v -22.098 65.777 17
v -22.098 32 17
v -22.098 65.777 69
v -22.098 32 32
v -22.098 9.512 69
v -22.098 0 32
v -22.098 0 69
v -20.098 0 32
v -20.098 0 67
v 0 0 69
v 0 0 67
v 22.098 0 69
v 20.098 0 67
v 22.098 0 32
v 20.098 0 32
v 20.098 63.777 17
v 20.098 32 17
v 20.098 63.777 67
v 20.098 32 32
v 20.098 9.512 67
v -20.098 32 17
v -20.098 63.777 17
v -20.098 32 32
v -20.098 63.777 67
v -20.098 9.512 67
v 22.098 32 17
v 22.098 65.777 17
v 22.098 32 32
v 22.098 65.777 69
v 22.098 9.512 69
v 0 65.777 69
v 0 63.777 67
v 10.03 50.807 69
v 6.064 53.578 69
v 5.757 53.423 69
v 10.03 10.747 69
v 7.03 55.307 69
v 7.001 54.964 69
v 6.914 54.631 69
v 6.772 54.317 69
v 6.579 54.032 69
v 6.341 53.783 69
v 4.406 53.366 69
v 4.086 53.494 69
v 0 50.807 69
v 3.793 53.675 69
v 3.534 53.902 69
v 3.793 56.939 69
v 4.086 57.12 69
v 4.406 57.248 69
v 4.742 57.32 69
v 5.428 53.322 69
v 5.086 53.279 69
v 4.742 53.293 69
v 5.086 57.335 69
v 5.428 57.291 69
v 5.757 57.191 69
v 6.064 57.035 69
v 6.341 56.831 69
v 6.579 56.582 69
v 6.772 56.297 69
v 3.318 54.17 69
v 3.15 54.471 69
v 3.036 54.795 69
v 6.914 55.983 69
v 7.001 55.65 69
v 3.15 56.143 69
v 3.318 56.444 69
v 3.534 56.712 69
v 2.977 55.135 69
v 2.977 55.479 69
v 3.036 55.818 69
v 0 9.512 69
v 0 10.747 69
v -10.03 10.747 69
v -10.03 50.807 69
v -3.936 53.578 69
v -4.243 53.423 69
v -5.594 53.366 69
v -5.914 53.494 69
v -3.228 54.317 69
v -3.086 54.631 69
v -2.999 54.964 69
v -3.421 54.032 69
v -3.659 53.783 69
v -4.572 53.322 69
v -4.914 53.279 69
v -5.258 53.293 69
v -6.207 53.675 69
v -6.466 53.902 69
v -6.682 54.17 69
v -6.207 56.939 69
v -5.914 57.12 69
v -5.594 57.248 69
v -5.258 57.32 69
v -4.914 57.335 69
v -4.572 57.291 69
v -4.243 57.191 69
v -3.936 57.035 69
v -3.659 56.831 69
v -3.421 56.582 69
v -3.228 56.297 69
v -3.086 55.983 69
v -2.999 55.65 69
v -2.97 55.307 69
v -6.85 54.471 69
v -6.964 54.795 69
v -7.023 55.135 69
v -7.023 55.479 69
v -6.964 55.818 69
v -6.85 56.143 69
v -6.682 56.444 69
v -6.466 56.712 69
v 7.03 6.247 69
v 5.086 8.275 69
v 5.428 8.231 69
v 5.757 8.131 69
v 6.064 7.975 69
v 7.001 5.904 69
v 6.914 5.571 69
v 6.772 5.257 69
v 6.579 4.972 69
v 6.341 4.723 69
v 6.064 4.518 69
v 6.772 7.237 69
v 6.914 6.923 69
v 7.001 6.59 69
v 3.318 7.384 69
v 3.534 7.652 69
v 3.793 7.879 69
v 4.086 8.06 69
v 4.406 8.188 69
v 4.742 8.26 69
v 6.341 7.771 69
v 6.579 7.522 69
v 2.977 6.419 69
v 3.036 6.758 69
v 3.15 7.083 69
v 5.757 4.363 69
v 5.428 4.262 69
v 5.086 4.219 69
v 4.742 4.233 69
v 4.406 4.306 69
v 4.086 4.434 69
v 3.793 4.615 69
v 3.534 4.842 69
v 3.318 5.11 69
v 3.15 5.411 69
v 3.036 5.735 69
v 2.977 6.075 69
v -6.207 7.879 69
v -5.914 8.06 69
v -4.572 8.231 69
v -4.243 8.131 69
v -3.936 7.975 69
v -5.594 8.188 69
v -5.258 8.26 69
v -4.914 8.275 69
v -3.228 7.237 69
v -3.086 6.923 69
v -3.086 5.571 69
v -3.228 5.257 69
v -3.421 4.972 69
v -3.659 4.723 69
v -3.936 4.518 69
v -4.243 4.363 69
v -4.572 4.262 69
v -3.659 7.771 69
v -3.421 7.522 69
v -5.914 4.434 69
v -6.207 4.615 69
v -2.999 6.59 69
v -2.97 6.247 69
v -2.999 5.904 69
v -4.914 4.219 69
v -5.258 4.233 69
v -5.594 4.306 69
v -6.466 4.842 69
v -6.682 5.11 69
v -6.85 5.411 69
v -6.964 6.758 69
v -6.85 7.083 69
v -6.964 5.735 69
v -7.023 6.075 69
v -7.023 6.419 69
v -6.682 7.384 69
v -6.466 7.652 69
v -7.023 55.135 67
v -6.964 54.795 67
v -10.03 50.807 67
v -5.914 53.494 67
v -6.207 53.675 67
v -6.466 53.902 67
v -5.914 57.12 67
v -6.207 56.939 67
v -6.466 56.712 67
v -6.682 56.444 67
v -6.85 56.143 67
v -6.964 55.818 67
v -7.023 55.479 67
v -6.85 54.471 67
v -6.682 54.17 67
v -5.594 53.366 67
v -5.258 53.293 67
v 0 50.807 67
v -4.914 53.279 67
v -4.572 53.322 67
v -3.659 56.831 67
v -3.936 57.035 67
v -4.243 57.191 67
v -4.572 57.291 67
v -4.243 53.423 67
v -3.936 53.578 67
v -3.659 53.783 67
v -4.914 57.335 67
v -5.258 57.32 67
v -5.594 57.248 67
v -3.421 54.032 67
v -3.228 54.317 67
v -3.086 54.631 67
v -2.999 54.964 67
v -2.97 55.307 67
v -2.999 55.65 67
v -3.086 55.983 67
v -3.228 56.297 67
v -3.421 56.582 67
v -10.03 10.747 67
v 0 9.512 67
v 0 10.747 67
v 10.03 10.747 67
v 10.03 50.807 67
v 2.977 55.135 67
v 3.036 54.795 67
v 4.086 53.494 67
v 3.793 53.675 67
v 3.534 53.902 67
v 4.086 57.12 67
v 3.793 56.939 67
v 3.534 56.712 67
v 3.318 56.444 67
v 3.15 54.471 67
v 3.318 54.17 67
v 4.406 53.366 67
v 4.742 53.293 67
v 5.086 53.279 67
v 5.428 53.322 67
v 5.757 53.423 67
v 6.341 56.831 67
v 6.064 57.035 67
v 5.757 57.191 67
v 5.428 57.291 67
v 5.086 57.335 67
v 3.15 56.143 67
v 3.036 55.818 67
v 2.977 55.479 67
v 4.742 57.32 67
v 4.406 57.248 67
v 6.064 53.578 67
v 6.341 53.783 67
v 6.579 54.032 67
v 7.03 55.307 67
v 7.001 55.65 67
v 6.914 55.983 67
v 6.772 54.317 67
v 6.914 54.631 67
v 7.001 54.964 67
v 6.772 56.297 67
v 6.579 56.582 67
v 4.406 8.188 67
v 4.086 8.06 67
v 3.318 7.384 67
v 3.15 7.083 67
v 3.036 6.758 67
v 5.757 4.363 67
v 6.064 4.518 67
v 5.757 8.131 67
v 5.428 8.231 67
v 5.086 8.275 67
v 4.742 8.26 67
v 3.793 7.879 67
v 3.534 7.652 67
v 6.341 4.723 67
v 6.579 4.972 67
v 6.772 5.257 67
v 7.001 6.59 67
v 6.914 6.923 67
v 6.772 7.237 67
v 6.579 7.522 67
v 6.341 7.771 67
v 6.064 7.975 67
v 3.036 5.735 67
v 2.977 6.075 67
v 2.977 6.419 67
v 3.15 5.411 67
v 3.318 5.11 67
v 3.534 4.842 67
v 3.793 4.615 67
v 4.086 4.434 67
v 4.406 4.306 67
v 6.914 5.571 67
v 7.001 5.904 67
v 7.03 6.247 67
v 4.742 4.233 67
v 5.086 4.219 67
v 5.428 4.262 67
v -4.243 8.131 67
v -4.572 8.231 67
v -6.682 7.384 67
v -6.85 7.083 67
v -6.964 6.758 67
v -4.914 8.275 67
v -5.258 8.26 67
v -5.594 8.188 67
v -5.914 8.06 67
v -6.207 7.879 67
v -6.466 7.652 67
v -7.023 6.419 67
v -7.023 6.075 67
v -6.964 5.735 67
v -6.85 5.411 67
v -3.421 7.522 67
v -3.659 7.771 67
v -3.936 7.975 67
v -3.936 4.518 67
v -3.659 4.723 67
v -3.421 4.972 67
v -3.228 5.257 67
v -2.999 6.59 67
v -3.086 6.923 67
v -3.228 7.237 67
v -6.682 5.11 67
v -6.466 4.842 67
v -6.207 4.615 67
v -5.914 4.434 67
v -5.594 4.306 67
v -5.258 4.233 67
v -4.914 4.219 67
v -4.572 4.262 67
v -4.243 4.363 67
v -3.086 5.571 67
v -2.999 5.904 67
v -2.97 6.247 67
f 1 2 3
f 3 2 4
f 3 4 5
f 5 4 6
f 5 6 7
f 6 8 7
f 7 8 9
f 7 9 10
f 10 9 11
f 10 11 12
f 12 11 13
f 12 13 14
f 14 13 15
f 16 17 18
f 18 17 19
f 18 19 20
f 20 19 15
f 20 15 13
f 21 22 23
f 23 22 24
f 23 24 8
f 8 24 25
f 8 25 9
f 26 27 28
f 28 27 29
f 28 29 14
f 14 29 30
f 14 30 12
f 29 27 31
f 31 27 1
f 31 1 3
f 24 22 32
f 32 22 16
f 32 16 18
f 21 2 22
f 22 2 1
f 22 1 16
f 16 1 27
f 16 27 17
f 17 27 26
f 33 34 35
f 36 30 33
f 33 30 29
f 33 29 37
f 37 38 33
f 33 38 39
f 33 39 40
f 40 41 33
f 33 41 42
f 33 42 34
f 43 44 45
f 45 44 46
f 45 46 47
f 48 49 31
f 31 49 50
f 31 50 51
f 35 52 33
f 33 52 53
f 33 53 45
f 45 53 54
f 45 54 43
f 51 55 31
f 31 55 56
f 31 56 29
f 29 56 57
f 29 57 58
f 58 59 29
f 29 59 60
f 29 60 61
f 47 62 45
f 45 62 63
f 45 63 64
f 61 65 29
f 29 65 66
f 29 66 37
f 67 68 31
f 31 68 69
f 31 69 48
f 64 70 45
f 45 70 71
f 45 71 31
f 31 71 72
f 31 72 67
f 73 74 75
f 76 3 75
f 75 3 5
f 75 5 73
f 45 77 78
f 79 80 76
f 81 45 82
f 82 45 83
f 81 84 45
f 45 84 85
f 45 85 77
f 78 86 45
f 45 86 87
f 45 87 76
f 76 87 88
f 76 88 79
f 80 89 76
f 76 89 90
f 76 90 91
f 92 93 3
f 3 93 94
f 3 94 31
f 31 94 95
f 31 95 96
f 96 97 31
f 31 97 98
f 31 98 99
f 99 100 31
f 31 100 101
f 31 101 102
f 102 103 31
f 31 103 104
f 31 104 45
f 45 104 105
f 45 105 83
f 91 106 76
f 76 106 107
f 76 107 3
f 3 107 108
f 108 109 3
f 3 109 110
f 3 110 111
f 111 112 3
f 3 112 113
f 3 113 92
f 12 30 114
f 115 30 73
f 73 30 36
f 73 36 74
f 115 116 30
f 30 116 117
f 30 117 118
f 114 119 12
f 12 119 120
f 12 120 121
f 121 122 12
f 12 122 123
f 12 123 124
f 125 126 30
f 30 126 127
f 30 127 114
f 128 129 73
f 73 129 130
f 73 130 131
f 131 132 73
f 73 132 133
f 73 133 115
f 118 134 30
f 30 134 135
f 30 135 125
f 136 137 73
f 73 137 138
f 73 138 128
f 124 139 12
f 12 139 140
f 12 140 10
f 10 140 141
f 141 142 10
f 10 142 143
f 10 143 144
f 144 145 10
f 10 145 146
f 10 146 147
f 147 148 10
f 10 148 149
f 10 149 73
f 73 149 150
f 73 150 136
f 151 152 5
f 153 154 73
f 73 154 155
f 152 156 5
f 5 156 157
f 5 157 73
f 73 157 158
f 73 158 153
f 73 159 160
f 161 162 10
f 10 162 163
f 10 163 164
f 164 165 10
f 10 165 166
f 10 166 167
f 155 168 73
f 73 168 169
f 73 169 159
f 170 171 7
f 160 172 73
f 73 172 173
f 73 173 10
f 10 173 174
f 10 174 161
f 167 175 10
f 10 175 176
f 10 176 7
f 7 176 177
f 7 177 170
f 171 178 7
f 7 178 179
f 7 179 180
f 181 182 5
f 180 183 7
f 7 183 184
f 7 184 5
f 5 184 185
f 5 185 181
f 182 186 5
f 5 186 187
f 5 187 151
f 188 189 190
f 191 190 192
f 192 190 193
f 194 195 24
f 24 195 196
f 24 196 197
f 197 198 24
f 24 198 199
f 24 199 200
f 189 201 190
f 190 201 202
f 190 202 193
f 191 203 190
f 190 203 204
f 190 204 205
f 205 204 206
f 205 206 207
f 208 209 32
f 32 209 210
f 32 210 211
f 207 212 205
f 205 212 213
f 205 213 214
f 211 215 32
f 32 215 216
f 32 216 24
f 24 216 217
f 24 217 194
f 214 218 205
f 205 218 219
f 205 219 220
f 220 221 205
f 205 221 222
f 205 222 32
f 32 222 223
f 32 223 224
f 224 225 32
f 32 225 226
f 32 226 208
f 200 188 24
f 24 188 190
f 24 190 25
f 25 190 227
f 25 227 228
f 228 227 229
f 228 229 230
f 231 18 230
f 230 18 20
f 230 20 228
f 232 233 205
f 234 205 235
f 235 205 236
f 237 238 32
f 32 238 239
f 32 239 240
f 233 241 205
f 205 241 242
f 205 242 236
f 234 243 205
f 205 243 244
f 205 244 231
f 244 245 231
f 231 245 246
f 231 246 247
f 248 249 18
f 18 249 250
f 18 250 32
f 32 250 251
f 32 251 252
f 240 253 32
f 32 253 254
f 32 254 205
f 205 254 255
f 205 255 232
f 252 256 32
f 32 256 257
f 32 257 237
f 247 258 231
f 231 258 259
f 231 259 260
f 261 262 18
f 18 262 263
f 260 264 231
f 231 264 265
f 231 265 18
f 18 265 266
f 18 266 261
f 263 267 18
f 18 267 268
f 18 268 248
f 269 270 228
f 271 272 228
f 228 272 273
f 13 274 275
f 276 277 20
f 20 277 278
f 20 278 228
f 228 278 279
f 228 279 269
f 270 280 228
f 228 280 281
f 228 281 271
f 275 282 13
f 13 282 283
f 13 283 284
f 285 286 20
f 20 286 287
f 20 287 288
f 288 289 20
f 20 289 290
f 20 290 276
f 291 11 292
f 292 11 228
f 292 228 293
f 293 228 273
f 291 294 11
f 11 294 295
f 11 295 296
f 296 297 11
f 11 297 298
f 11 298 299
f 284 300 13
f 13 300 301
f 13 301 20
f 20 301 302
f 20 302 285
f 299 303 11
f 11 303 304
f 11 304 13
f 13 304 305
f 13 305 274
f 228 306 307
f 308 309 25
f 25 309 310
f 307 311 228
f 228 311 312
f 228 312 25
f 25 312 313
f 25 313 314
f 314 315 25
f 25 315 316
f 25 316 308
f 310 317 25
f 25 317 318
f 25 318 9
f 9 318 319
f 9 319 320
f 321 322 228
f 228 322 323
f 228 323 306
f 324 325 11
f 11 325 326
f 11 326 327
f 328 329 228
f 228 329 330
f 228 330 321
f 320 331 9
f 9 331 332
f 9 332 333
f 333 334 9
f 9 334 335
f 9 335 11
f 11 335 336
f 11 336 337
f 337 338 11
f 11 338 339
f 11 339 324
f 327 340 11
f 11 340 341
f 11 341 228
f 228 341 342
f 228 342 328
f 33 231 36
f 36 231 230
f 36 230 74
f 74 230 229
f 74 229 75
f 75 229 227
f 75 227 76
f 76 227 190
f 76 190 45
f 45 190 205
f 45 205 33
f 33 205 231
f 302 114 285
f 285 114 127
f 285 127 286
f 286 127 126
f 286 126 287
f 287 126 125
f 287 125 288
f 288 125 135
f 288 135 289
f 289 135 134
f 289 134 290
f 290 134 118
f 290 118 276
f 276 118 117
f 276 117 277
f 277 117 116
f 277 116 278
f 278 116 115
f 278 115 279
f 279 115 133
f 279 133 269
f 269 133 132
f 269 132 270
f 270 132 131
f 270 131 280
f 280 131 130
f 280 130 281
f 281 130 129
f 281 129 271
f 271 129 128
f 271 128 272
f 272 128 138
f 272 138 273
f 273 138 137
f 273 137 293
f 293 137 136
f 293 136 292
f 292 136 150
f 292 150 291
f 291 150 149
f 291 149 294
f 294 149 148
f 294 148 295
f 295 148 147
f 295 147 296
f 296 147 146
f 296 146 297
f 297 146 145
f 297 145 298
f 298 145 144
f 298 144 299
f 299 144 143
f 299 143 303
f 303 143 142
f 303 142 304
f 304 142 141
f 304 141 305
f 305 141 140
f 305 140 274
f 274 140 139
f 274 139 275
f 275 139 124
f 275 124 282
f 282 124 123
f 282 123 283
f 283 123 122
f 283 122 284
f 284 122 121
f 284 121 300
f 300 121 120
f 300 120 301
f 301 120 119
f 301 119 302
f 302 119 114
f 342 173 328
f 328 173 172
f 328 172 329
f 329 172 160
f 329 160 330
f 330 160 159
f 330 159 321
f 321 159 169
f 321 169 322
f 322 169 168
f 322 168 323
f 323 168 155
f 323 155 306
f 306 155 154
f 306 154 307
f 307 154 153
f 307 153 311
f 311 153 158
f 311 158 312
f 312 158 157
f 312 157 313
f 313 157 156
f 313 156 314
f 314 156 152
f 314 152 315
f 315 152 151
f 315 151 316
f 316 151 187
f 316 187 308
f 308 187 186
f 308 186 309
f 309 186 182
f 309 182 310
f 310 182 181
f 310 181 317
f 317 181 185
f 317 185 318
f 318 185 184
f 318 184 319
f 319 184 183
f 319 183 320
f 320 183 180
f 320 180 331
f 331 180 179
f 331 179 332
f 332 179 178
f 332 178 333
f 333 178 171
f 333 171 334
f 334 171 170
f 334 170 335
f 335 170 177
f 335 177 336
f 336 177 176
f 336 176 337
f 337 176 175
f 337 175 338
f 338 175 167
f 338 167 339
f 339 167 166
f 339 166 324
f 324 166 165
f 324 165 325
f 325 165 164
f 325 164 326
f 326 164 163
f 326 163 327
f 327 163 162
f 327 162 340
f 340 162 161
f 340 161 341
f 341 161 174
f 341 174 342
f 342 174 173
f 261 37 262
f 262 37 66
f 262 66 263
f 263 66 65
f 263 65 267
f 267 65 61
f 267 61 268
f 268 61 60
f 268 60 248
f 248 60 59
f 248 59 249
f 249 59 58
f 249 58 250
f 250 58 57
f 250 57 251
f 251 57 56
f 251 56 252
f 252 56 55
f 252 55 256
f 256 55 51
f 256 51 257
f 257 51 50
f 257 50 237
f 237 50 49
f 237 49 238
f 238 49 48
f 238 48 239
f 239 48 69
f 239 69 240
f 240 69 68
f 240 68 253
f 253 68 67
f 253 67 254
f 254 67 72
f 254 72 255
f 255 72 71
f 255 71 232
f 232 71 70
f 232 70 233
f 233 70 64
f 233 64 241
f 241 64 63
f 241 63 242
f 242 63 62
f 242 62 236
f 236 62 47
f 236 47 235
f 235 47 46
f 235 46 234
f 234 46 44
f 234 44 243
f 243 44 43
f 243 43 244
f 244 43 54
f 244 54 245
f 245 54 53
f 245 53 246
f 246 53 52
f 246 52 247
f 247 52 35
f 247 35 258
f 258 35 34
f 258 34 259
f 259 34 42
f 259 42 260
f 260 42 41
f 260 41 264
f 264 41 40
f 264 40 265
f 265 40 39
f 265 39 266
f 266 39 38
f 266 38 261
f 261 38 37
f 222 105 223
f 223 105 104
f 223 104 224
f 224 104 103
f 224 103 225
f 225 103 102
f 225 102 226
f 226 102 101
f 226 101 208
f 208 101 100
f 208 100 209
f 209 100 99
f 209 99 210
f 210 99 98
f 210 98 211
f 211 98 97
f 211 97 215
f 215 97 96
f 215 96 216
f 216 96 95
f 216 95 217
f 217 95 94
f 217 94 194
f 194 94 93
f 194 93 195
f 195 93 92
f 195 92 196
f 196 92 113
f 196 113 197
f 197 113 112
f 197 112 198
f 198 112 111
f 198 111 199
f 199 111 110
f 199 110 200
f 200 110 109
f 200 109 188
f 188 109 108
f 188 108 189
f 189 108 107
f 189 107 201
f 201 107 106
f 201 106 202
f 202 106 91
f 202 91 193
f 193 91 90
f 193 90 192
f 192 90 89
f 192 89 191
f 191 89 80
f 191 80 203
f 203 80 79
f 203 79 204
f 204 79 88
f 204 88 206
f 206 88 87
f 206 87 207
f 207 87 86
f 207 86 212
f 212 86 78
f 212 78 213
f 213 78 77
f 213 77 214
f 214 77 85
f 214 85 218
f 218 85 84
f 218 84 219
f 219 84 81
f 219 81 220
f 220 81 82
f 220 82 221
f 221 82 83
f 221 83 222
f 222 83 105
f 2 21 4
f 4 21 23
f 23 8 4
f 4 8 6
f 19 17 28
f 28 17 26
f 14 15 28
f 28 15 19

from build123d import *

# Parameters (mm, degrees)
SKETCH1_W                       = 184
SKETCH1_H                       = 64
SKETCH1_W_2                     = 180
SKETCH1_H_2                     = 60
EXTRUDE_THIN1_DEPTH             = 30
SKETCH3_W                       = 184
SKETCH3_H                       = 64
BOSS_EXTRUDE1_DEPTH             = 2
SKETCH4_W                       = 174.419493498
SKETCH4_H                       = 4
CUT_EXTRUDE1_DEPTH              = 5
SKETCH5_W                       = 40.195784268
SKETCH5_H                       = 59.069599678
CUT_EXTRUDE2_DEPTH              = 15
SKETCH6_W                       = 44.195784268
SKETCH6_H                       = 67.776893145
SKETCH6_W_2                     = 40.195784268
SKETCH6_H_2                     = 63.776893145
EXTRUDE_THIN2_DEPTH             = 35
EXTRUDE_THIN2_DIRECTION_2_REACH = 118.55
SKETCH7_W                       = 128.018506196
SKETCH7_H                       = 58.604777903
CUT_EXTRUDE3_DEPTH              = 85
SKETCH8_W                       = 13
SKETCH8_H                       = 30
CUT_EXTRUDE4_DEPTH              = 85
SKETCH9_W                       = 44.195784268
SKETCH9_H                       = 65.776893145
BOSS_EXTRUDE2_DEPTH             = 2
SKETCH13_W                      = 20.06
SKETCH13_H                      = 40.06
CUT_EXTRUDE6_DEPTH              = 10
SKETCH18_R                      = 2.03
CUT_EXTRUDE8_DEPTH              = 10
SKETCH19_W                      = 50
SKETCH19_H                      = 40
CUT_EXTRUDE9_DEPTH              = 10
SKETCH20_R                      = 2.03
CUT_EXTRUDE10_DEPTH             = 10
SKETCH21_W                      = 64
SKETCH21_H                      = 32
CUT_EXTRUDE11_DEPTH             = 217


with BuildPart() as part:
    # Sketch1 → Extrude-Thin1 (new body)
    with BuildSketch(Plane(origin=(0, 0, 0), x_dir=(1, 0, 0), z_dir=(0, 1, 0))):
        Rectangle(SKETCH1_W, SKETCH1_H)
        Rectangle(SKETCH1_W_2, SKETCH1_H_2, mode=Mode.SUBTRACT)
    extrude(amount=EXTRUDE_THIN1_DEPTH)

    # Sketch3 → Boss-Extrude1 (add)
    with BuildSketch(Plane(origin=(0, 30, 0), x_dir=(1, 0, 0), z_dir=(0, 1, 0))):
        Rectangle(SKETCH3_W, SKETCH3_H)
    extrude(amount=BOSS_EXTRUDE1_DEPTH)

    # Sketch4 → Cut-Extrude1 (cut)
    with BuildSketch(Plane(origin=(0, 32, 0), x_dir=(1, 0, 0), z_dir=(0, 1, 0))):
        with Locations((0, -2)):
            Rectangle(SKETCH4_W, SKETCH4_H)
    extrude(amount=-CUT_EXTRUDE1_DEPTH, mode=Mode.SUBTRACT)

    # Sketch5 → Cut-Extrude2 (cut)
    with BuildSketch(Plane.XY.offset(32)):
        with Locations((0, 16)):
            Rectangle(SKETCH5_W, SKETCH5_H)
    extrude(amount=-CUT_EXTRUDE2_DEPTH, mode=Mode.SUBTRACT)

    # Sketch6 → Extrude-Thin2 (add)
    with BuildSketch(Plane.XY.offset(32)):
        with Locations((0, 31.888446573)):
            Rectangle(SKETCH6_W, SKETCH6_H)
        with Locations((0, 31.888446573)):
            Rectangle(SKETCH6_W_2, SKETCH6_H_2, mode=Mode.SUBTRACT)
    extrude(amount=EXTRUDE_THIN2_DEPTH)

    # Extrude-Thin2 direction 2: up to this face of the body (flat: up to its plane)
    extrude_thin2_direction_2_end = Plane(part.part.faces().sort_by_distance((0, 31, 17))[0])
    # Sketch6 → Extrude-Thin2 direction 2 (add, up to the picked face)
    with BuildSketch(Plane.XY.offset(32), mode=Mode.PRIVATE) as extrude_thin2_direction_2_sk1:
        with Locations((0, 31.888446573)):
            Rectangle(SKETCH6_W, SKETCH6_H)
        with Locations((0, 31.888446573)):
            Rectangle(SKETCH6_W_2, SKETCH6_H_2, mode=Mode.SUBTRACT)
    extrude_thin2_direction_2_tool1 = split(extrude(extrude_thin2_direction_2_sk1.sketch, amount=-EXTRUDE_THIN2_DIRECTION_2_REACH, mode=Mode.PRIVATE), bisect_by=extrude_thin2_direction_2_end, keep=Keep.BOTH, mode=Mode.PRIVATE)
    add(extrude_thin2_direction_2_tool1.solids().sort_by(Axis((0, -1.190866, 32), (0, 0, -1)))[0])

    # Sketch7 → Cut-Extrude3 (cut)
    with BuildSketch(Plane.XZ):
        with Locations((2.364457898, 44.353486129)):
            Rectangle(SKETCH7_W, SKETCH7_H)
    extrude(amount=CUT_EXTRUDE3_DEPTH, mode=Mode.SUBTRACT)

    # Sketch8 → Cut-Extrude4 (cut)
    with BuildSketch(Plane.ZY.offset(22.097892134)):
        with Locations((23.5, 15)):
            Rectangle(SKETCH8_W, SKETCH8_H)
    extrude(amount=-CUT_EXTRUDE4_DEPTH, mode=Mode.SUBTRACT)

    # Sketch9 → Boss-Extrude2 (add)
    with BuildSketch(Plane.XY.offset(67)):
        with Locations((0, 32.888446573)):
            Rectangle(SKETCH9_W, SKETCH9_H)
    extrude(amount=BOSS_EXTRUDE2_DEPTH)

    # Sketch13 → Cut-Extrude6 (cut)
    with BuildSketch(Plane.XY.offset(69)):
        with Locations((0, 30.776893145)):
            Rectangle(SKETCH13_W, SKETCH13_H)
    extrude(amount=-CUT_EXTRUDE6_DEPTH, mode=Mode.SUBTRACT)

    # Sketch18 → Cut-Extrude8 (cut)
    with BuildSketch(Plane.XY.offset(69)):
        with Locations((-5, 6.246893145)):
            Circle(SKETCH18_R)
        with Locations((5, 6.246893145)):
            Circle(SKETCH18_R)
    extrude(amount=-CUT_EXTRUDE8_DEPTH, mode=Mode.SUBTRACT)

    # Sketch19 → Cut-Extrude9 (cut)
    with BuildSketch(Plane.XY.offset(32)):
        with Locations((57.048946067, 0)):
            Rectangle(SKETCH19_W, SKETCH19_H)
    extrude(amount=-CUT_EXTRUDE9_DEPTH, mode=Mode.SUBTRACT)

    # Sketch20 → Cut-Extrude10 (cut)
    with BuildSketch(Plane.XY.offset(69)):
        with Locations((-5, 55.306893145)):
            Circle(SKETCH20_R)
        with Locations((5, 55.306893145)):
            Circle(SKETCH20_R)
    extrude(amount=-CUT_EXTRUDE10_DEPTH, mode=Mode.SUBTRACT)

    # Sketch21 → Cut-Extrude11 (cut)
    with BuildSketch(Plane.ZY.offset(92)):
        with Locations((0, 16)):
            Rectangle(SKETCH21_W, SKETCH21_H)
    extrude(amount=-CUT_EXTRUDE11_DEPTH, mode=Mode.SUBTRACT)


solid = part.part
